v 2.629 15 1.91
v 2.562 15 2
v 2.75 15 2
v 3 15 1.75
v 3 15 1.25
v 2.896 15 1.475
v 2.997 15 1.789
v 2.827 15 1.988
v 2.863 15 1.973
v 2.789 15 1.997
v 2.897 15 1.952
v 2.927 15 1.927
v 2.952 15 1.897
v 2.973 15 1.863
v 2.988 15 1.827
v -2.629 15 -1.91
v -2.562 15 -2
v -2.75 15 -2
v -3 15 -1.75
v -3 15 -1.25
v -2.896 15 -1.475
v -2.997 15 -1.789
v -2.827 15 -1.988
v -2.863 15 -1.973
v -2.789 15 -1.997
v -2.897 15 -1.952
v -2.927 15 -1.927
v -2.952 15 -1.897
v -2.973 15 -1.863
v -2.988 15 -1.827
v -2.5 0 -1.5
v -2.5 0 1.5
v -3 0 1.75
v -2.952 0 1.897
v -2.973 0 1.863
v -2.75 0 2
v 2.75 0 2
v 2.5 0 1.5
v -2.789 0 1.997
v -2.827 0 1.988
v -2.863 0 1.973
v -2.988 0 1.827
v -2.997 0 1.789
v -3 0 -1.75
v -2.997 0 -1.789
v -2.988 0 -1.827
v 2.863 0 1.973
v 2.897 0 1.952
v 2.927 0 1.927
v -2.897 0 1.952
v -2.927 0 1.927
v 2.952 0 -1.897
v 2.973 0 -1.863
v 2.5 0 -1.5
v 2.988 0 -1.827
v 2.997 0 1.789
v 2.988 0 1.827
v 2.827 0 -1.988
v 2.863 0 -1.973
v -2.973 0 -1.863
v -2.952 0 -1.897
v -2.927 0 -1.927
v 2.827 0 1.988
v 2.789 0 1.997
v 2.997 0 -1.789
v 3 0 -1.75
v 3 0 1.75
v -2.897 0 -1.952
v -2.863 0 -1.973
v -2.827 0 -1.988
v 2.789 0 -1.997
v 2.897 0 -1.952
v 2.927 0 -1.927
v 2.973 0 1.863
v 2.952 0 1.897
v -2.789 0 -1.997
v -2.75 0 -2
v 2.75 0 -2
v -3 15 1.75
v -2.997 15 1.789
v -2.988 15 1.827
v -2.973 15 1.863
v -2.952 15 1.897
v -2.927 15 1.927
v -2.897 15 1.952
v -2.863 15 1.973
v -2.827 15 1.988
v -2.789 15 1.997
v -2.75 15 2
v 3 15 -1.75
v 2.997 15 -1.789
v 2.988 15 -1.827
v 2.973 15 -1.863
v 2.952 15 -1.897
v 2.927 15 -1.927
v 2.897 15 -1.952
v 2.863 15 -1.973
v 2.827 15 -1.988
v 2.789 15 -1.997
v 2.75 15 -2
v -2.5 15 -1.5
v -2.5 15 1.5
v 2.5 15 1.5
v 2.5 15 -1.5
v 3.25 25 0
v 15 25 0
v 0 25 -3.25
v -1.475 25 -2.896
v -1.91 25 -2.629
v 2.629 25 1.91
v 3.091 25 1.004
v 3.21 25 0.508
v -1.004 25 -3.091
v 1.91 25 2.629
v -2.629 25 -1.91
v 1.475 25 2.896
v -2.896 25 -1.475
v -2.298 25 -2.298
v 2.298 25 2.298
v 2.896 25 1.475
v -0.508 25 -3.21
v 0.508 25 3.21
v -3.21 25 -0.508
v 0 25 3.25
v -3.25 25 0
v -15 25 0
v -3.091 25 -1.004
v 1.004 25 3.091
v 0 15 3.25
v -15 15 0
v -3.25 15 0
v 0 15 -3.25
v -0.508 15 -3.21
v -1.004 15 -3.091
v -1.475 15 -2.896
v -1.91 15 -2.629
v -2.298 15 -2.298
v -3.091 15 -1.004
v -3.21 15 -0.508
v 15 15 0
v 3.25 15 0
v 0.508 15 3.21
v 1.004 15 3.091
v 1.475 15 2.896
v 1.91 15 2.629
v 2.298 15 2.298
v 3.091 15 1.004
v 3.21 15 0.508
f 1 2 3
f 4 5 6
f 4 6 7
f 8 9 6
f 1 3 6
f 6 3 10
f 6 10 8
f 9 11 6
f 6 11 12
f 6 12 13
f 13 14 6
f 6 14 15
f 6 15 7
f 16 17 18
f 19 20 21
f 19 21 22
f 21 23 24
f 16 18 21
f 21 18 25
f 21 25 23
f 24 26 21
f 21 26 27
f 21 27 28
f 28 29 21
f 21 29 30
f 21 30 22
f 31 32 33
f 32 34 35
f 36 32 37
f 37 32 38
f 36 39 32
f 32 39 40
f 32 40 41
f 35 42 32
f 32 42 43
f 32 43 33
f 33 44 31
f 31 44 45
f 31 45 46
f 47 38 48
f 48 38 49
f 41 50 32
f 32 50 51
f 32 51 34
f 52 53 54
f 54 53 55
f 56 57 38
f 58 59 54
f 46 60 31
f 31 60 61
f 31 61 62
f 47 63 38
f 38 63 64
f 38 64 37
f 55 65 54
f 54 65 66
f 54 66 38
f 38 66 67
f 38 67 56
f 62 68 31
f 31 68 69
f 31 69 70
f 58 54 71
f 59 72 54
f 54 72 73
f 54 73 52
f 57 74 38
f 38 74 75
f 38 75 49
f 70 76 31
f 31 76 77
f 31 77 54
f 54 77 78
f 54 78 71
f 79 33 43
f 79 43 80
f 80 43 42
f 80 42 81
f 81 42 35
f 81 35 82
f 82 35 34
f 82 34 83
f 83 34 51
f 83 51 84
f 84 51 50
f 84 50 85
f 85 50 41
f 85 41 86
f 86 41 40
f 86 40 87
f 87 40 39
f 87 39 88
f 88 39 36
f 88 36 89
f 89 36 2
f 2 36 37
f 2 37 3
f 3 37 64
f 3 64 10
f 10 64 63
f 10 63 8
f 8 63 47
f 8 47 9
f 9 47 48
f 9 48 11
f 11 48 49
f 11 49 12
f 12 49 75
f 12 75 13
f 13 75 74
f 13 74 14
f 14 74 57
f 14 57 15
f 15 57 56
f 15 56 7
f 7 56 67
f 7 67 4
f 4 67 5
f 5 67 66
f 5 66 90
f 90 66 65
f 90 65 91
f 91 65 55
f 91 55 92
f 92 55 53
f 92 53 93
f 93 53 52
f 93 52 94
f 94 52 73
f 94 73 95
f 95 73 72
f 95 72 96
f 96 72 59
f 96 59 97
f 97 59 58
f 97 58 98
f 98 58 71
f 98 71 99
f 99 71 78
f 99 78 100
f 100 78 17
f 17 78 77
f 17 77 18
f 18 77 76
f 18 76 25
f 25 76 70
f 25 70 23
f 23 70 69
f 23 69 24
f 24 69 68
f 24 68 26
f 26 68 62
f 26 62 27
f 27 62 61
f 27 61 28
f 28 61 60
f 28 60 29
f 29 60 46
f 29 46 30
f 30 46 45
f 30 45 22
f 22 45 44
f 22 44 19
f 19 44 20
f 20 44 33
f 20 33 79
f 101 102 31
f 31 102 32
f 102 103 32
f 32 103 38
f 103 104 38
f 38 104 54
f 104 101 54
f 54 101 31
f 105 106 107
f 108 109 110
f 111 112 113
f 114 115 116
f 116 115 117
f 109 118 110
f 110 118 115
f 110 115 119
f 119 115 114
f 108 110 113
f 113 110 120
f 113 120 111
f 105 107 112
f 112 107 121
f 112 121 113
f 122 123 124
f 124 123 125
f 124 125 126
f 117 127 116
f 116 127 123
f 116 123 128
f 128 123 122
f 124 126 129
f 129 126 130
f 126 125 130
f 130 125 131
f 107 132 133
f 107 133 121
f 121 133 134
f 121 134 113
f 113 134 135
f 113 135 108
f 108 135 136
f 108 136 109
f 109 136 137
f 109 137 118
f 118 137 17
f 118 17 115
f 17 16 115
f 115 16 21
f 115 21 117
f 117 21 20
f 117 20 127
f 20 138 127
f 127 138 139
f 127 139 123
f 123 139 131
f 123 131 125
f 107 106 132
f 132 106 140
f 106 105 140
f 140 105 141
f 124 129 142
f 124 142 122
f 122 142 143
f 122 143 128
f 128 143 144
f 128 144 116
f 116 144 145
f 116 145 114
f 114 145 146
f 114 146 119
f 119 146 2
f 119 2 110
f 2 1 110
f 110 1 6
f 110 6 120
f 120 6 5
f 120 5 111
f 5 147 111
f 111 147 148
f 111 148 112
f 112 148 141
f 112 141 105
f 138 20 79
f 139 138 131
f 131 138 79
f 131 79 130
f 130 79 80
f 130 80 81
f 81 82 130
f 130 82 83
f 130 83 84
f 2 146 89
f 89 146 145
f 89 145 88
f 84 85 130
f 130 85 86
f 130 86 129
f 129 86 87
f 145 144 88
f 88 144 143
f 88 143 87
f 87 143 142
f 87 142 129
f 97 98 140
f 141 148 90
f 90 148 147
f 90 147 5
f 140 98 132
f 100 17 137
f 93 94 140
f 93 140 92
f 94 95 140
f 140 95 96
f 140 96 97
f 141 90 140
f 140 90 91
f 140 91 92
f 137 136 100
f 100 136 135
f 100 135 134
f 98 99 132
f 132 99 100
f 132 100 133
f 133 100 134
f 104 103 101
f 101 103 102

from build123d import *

# Parameters (mm, degrees)
CROQUIS1_W              = 5
CROQUIS1_H              = 3
SALIENTE_EXTRUIR1_DEPTH = 15
SALIENTE_EXTRUIR2_DEPTH = 10


with BuildPart() as part:
    # Croquis1 → Saliente-Extruir1 (new body)
    with BuildSketch(Plane(origin=(0, 0, 0), x_dir=(1, 0, 0), z_dir=(0, 1, 0))):
        with BuildLine():
            Line((-2.75, -2), (2.75, -2))
            ThreePointArc((2.75, -2), (2.926776695, -1.926776695), (3, -1.75))
            Line((3, -1.75), (3, 1.75))
            ThreePointArc((3, 1.75), (2.926776695, 1.926776695), (2.75, 2))
            Line((2.75, 2), (-2.75, 2))
            ThreePointArc((-2.75, 2), (-2.926776695, 1.926776695), (-3, 1.75))
            Line((-3, 1.75), (-3, -1.75))
            ThreePointArc((-3, -1.75), (-2.926776695, -1.926776695), (-2.75, -2))
        make_face()
        Rectangle(CROQUIS1_W, CROQUIS1_H, mode=Mode.SUBTRACT)
    extrude(amount=SALIENTE_EXTRUIR1_DEPTH)

    # Croquis2 → Saliente-Extruir2 (add)
    with BuildSketch(Plane(origin=(0, 15, 0), x_dir=(1, 0, 0), z_dir=(0, 1, 0))):
        with BuildLine():
            Line((-3.25, 0), (-15, 0))
            Line((-15, 0), (0, -3.25))
            ThreePointArc((0, -3.25), (2.298097039, -2.298097039), (3.25, 0))
            Line((3.25, 0), (15, 0))
            Line((15, 0), (0, 3.25))
            ThreePointArc((0, 3.25), (-2.298097039, 2.298097039), (-3.25, 0))
        make_face()
    extrude(amount=SALIENTE_EXTRUIR2_DEPTH)


solid = part.part
